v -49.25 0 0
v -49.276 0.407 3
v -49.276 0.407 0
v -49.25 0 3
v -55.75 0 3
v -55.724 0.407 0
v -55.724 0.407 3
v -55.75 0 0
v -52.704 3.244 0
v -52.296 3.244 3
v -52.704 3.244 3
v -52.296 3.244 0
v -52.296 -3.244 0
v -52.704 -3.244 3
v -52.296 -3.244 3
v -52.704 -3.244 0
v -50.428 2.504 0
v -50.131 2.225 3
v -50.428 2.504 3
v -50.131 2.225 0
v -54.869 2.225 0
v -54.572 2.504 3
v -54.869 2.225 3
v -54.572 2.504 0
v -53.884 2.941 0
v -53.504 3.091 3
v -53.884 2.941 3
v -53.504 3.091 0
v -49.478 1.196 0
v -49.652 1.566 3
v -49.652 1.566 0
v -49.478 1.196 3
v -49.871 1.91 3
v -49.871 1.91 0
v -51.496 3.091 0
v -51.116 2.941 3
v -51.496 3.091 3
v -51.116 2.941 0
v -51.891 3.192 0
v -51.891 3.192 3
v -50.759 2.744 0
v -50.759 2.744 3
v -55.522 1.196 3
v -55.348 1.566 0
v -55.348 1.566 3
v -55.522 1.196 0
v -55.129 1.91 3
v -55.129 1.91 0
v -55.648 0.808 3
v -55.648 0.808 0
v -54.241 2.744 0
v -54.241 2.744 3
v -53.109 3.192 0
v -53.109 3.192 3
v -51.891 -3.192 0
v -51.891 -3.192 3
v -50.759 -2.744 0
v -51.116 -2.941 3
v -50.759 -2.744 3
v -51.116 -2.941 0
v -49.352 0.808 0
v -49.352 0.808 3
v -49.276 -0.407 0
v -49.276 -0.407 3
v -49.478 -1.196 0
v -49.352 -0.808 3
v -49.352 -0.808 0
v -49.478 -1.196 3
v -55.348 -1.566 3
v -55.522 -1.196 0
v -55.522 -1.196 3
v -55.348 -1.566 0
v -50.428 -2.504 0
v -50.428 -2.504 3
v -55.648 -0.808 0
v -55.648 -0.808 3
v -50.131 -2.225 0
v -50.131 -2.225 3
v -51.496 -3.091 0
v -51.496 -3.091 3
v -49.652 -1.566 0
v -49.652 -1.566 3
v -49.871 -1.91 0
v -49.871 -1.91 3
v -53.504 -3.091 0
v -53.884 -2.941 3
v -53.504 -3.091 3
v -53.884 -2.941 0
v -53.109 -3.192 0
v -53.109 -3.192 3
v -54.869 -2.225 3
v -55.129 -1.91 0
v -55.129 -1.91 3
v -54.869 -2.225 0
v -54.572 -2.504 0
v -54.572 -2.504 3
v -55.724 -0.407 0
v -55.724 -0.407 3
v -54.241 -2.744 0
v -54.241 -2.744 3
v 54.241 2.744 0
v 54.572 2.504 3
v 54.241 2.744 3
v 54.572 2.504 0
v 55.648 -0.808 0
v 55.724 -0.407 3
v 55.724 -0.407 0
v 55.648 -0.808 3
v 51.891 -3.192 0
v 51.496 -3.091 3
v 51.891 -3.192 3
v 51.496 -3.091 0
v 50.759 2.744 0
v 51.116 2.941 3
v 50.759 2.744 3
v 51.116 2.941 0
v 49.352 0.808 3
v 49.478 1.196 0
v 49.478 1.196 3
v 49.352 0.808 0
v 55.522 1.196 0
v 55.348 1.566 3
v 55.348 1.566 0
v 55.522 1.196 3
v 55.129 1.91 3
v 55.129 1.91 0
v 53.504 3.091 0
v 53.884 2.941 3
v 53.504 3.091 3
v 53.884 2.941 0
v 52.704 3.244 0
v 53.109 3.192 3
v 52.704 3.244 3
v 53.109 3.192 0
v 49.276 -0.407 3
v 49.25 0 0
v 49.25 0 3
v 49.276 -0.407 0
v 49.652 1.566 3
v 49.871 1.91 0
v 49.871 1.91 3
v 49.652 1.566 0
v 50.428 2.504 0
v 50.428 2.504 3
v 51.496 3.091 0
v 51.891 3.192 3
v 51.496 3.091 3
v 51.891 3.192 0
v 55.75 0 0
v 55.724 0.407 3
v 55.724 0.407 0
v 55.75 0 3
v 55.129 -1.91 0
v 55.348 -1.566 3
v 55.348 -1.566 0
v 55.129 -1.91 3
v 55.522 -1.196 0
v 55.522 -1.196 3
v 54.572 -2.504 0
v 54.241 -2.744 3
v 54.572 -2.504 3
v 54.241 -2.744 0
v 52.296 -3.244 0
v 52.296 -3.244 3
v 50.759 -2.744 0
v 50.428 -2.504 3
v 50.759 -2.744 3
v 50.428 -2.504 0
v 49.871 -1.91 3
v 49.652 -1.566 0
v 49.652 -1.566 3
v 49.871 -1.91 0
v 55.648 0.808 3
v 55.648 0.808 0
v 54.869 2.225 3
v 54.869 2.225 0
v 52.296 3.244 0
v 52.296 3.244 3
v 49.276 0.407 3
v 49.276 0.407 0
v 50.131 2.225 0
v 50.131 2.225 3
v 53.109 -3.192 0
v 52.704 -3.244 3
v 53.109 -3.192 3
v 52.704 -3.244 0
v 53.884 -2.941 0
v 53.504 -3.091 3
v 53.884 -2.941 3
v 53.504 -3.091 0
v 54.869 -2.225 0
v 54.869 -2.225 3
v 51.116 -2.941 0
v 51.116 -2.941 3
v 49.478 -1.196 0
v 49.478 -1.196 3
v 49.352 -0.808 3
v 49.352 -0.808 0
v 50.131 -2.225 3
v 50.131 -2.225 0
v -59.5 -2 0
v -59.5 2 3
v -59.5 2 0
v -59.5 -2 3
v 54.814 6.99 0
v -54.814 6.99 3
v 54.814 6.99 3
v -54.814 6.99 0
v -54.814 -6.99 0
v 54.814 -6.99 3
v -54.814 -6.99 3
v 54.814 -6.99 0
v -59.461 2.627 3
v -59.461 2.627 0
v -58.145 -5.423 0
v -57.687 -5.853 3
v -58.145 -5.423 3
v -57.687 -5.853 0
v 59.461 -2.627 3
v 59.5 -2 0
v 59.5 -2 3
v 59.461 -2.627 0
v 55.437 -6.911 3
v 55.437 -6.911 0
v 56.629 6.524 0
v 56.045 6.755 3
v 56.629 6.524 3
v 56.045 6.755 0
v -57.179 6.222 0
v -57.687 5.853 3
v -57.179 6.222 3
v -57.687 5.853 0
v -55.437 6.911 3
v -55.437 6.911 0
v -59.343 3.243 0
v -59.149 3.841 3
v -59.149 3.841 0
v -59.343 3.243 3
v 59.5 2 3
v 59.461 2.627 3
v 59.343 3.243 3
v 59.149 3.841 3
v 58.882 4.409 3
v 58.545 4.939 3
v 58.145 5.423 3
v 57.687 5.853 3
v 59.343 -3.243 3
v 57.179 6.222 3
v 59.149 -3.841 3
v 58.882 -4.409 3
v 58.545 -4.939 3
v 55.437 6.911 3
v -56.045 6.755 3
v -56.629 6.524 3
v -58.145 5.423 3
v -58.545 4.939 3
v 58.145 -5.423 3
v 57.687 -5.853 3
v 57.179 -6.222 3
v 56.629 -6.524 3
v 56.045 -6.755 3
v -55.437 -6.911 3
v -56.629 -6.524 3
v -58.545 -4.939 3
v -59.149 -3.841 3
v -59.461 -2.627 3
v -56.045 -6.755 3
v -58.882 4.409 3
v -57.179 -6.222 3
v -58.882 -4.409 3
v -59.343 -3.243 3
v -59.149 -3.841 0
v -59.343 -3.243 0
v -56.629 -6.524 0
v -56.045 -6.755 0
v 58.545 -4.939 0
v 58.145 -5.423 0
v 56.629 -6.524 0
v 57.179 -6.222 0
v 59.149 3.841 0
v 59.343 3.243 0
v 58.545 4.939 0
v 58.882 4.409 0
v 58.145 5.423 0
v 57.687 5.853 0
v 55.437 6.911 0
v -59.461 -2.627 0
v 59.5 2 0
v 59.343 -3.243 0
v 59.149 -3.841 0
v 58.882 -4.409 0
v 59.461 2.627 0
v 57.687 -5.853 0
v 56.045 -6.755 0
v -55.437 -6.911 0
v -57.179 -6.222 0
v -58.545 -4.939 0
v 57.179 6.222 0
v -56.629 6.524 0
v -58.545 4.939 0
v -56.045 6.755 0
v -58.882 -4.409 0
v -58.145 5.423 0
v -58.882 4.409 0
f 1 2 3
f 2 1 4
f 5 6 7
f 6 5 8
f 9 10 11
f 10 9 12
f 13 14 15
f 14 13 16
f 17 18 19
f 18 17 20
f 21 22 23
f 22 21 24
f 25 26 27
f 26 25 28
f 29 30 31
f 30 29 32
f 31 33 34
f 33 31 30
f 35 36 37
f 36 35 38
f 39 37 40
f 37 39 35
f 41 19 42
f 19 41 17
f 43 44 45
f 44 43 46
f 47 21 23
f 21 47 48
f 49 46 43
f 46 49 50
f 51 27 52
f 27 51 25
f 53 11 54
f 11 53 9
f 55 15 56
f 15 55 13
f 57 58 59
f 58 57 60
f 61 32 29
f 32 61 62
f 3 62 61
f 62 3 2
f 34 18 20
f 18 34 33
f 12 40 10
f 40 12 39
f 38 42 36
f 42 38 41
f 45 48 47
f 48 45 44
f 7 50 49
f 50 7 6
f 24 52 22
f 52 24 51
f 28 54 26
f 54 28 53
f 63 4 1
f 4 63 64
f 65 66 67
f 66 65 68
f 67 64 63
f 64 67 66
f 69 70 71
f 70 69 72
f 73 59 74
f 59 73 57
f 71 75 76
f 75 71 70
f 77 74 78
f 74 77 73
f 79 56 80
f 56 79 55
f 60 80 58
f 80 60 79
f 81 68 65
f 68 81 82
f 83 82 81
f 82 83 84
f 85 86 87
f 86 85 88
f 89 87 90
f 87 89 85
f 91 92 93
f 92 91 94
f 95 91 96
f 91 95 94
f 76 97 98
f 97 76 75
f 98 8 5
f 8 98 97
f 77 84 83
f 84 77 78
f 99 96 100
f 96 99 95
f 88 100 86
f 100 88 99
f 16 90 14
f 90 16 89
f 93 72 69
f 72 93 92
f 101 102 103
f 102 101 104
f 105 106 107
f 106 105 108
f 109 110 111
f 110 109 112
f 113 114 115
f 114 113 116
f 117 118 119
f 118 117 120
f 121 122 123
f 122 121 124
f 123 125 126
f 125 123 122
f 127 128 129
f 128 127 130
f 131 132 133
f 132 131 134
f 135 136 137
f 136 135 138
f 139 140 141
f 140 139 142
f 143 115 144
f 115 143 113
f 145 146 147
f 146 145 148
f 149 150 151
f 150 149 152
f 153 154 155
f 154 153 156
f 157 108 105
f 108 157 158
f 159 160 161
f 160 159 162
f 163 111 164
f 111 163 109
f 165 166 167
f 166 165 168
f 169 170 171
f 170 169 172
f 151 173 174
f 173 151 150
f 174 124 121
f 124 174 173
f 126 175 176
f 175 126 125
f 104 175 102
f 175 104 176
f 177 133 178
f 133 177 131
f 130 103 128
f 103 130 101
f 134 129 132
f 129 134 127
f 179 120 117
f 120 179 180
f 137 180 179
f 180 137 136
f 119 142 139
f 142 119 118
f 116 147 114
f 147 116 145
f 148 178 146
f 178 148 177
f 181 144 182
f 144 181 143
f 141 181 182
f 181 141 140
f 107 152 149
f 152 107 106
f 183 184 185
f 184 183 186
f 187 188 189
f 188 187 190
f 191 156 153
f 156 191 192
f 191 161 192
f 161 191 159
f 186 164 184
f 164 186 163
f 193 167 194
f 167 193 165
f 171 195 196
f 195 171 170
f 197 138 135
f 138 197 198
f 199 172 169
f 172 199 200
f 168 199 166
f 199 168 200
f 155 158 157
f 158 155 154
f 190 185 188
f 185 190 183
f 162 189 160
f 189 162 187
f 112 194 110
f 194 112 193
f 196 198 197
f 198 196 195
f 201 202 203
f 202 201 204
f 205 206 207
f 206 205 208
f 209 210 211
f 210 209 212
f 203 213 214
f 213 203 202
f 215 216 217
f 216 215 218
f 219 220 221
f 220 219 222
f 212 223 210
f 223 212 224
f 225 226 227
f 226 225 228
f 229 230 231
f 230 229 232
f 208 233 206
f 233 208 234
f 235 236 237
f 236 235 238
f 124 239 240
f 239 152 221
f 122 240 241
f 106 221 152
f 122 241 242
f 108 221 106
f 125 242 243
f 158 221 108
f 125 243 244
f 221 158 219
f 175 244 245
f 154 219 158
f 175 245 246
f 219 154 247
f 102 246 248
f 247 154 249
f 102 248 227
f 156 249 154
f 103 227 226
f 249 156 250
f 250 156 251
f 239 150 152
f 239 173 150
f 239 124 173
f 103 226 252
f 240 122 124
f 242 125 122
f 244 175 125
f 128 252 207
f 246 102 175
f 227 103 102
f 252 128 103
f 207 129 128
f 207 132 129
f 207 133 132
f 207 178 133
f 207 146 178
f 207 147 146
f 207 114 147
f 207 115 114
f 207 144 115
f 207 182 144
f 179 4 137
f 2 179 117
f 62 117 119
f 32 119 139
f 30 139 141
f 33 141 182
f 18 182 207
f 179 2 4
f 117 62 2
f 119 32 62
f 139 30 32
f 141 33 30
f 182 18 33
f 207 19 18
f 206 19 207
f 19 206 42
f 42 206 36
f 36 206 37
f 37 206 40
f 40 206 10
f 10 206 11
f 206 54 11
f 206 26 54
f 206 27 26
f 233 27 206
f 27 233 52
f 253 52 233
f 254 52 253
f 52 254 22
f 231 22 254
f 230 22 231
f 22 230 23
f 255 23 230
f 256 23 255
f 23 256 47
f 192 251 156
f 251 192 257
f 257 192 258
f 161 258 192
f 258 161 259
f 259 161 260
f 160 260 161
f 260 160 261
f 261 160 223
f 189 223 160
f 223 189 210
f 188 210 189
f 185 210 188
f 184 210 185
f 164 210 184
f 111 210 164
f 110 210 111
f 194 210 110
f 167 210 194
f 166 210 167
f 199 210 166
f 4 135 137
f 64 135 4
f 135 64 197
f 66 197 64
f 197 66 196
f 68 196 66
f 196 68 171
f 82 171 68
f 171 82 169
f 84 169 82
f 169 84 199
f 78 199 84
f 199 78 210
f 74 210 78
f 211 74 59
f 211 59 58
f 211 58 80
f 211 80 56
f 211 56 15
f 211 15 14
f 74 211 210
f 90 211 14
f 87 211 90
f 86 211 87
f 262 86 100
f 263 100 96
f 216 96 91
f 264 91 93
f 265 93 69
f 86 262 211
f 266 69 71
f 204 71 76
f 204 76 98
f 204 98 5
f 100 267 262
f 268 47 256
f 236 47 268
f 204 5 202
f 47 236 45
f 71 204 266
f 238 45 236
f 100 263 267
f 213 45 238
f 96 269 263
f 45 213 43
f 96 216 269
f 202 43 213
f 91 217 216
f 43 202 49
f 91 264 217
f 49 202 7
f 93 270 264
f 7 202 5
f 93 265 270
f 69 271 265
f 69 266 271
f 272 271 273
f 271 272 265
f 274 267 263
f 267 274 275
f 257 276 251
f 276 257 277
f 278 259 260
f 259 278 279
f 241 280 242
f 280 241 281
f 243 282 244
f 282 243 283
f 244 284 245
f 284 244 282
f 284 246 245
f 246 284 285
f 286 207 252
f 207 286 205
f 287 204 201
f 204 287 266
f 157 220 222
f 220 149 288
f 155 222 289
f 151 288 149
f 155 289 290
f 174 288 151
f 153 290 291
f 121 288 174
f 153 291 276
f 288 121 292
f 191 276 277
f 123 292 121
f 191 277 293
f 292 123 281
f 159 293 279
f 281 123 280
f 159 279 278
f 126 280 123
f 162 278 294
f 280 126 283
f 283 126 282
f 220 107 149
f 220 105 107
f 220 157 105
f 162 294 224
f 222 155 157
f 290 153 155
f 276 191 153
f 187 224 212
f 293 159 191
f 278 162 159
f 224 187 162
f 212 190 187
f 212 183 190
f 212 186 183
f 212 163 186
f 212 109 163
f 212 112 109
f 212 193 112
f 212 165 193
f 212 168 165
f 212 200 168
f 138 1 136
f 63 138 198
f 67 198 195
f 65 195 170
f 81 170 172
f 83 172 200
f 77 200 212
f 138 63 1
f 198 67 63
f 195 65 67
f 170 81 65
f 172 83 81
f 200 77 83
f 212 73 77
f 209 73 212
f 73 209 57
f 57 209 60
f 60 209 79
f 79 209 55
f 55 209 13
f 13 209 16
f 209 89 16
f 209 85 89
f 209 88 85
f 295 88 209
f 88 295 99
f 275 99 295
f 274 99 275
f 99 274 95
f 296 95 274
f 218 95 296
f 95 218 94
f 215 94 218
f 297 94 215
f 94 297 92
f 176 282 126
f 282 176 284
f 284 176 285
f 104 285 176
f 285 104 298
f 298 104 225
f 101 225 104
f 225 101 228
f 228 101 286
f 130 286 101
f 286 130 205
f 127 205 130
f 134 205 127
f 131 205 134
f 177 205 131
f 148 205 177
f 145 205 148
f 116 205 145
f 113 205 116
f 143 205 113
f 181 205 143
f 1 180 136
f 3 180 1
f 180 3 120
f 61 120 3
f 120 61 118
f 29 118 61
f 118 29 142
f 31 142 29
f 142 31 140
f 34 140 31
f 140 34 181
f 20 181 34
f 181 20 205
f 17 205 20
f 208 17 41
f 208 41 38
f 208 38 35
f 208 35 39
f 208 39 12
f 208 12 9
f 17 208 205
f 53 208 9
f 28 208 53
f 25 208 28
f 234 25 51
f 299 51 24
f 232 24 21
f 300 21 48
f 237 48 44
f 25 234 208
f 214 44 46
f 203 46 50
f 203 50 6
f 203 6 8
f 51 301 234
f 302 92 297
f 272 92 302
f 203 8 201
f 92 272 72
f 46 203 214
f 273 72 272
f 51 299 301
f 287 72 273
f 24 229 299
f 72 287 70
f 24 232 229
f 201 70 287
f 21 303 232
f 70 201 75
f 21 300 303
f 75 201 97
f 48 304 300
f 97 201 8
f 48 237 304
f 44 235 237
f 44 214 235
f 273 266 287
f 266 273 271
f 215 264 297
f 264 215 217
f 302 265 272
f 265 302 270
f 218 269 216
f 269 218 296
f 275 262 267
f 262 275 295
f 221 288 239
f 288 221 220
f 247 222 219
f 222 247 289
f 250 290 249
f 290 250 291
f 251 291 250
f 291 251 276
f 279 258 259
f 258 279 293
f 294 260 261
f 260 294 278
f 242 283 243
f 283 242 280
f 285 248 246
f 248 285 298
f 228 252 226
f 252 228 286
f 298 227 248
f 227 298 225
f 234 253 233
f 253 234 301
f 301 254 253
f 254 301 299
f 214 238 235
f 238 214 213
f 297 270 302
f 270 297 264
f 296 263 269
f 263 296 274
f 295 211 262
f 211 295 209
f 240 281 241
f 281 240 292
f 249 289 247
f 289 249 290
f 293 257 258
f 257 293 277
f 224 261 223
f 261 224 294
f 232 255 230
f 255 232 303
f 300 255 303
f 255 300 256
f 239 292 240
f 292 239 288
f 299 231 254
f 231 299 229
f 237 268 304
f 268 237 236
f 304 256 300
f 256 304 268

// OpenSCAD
$fn = 50;


difference() {
	union() {
		hull() {
			translate(v = [-54.5000000000, 2.0000000000, 0]) {
				cylinder(h = 3, r = 5);
			}
			translate(v = [54.5000000000, 2.0000000000, 0]) {
				cylinder(h = 3, r = 5);
			}
			translate(v = [-54.5000000000, -2.0000000000, 0]) {
				cylinder(h = 3, r = 5);
			}
			translate(v = [54.5000000000, -2.0000000000, 0]) {
				cylinder(h = 3, r = 5);
			}
		}
	}
	union() {
		translate(v = [-52.5000000000, 0.0000000000, -100.0000000000]) {
			cylinder(h = 200, r = 3.2500000000);
		}
		translate(v = [-52.5000000000, 0.0000000000, -100.0000000000]) {
			cylinder(h = 200, r = 3.2500000000);
		}
		translate(v = [52.5000000000, 0.0000000000, -100.0000000000]) {
			cylinder(h = 200, r = 3.2500000000);
		}
		translate(v = [52.5000000000, 0.0000000000, -100.0000000000]) {
			cylinder(h = 200, r = 3.2500000000);
		}
	}
}
